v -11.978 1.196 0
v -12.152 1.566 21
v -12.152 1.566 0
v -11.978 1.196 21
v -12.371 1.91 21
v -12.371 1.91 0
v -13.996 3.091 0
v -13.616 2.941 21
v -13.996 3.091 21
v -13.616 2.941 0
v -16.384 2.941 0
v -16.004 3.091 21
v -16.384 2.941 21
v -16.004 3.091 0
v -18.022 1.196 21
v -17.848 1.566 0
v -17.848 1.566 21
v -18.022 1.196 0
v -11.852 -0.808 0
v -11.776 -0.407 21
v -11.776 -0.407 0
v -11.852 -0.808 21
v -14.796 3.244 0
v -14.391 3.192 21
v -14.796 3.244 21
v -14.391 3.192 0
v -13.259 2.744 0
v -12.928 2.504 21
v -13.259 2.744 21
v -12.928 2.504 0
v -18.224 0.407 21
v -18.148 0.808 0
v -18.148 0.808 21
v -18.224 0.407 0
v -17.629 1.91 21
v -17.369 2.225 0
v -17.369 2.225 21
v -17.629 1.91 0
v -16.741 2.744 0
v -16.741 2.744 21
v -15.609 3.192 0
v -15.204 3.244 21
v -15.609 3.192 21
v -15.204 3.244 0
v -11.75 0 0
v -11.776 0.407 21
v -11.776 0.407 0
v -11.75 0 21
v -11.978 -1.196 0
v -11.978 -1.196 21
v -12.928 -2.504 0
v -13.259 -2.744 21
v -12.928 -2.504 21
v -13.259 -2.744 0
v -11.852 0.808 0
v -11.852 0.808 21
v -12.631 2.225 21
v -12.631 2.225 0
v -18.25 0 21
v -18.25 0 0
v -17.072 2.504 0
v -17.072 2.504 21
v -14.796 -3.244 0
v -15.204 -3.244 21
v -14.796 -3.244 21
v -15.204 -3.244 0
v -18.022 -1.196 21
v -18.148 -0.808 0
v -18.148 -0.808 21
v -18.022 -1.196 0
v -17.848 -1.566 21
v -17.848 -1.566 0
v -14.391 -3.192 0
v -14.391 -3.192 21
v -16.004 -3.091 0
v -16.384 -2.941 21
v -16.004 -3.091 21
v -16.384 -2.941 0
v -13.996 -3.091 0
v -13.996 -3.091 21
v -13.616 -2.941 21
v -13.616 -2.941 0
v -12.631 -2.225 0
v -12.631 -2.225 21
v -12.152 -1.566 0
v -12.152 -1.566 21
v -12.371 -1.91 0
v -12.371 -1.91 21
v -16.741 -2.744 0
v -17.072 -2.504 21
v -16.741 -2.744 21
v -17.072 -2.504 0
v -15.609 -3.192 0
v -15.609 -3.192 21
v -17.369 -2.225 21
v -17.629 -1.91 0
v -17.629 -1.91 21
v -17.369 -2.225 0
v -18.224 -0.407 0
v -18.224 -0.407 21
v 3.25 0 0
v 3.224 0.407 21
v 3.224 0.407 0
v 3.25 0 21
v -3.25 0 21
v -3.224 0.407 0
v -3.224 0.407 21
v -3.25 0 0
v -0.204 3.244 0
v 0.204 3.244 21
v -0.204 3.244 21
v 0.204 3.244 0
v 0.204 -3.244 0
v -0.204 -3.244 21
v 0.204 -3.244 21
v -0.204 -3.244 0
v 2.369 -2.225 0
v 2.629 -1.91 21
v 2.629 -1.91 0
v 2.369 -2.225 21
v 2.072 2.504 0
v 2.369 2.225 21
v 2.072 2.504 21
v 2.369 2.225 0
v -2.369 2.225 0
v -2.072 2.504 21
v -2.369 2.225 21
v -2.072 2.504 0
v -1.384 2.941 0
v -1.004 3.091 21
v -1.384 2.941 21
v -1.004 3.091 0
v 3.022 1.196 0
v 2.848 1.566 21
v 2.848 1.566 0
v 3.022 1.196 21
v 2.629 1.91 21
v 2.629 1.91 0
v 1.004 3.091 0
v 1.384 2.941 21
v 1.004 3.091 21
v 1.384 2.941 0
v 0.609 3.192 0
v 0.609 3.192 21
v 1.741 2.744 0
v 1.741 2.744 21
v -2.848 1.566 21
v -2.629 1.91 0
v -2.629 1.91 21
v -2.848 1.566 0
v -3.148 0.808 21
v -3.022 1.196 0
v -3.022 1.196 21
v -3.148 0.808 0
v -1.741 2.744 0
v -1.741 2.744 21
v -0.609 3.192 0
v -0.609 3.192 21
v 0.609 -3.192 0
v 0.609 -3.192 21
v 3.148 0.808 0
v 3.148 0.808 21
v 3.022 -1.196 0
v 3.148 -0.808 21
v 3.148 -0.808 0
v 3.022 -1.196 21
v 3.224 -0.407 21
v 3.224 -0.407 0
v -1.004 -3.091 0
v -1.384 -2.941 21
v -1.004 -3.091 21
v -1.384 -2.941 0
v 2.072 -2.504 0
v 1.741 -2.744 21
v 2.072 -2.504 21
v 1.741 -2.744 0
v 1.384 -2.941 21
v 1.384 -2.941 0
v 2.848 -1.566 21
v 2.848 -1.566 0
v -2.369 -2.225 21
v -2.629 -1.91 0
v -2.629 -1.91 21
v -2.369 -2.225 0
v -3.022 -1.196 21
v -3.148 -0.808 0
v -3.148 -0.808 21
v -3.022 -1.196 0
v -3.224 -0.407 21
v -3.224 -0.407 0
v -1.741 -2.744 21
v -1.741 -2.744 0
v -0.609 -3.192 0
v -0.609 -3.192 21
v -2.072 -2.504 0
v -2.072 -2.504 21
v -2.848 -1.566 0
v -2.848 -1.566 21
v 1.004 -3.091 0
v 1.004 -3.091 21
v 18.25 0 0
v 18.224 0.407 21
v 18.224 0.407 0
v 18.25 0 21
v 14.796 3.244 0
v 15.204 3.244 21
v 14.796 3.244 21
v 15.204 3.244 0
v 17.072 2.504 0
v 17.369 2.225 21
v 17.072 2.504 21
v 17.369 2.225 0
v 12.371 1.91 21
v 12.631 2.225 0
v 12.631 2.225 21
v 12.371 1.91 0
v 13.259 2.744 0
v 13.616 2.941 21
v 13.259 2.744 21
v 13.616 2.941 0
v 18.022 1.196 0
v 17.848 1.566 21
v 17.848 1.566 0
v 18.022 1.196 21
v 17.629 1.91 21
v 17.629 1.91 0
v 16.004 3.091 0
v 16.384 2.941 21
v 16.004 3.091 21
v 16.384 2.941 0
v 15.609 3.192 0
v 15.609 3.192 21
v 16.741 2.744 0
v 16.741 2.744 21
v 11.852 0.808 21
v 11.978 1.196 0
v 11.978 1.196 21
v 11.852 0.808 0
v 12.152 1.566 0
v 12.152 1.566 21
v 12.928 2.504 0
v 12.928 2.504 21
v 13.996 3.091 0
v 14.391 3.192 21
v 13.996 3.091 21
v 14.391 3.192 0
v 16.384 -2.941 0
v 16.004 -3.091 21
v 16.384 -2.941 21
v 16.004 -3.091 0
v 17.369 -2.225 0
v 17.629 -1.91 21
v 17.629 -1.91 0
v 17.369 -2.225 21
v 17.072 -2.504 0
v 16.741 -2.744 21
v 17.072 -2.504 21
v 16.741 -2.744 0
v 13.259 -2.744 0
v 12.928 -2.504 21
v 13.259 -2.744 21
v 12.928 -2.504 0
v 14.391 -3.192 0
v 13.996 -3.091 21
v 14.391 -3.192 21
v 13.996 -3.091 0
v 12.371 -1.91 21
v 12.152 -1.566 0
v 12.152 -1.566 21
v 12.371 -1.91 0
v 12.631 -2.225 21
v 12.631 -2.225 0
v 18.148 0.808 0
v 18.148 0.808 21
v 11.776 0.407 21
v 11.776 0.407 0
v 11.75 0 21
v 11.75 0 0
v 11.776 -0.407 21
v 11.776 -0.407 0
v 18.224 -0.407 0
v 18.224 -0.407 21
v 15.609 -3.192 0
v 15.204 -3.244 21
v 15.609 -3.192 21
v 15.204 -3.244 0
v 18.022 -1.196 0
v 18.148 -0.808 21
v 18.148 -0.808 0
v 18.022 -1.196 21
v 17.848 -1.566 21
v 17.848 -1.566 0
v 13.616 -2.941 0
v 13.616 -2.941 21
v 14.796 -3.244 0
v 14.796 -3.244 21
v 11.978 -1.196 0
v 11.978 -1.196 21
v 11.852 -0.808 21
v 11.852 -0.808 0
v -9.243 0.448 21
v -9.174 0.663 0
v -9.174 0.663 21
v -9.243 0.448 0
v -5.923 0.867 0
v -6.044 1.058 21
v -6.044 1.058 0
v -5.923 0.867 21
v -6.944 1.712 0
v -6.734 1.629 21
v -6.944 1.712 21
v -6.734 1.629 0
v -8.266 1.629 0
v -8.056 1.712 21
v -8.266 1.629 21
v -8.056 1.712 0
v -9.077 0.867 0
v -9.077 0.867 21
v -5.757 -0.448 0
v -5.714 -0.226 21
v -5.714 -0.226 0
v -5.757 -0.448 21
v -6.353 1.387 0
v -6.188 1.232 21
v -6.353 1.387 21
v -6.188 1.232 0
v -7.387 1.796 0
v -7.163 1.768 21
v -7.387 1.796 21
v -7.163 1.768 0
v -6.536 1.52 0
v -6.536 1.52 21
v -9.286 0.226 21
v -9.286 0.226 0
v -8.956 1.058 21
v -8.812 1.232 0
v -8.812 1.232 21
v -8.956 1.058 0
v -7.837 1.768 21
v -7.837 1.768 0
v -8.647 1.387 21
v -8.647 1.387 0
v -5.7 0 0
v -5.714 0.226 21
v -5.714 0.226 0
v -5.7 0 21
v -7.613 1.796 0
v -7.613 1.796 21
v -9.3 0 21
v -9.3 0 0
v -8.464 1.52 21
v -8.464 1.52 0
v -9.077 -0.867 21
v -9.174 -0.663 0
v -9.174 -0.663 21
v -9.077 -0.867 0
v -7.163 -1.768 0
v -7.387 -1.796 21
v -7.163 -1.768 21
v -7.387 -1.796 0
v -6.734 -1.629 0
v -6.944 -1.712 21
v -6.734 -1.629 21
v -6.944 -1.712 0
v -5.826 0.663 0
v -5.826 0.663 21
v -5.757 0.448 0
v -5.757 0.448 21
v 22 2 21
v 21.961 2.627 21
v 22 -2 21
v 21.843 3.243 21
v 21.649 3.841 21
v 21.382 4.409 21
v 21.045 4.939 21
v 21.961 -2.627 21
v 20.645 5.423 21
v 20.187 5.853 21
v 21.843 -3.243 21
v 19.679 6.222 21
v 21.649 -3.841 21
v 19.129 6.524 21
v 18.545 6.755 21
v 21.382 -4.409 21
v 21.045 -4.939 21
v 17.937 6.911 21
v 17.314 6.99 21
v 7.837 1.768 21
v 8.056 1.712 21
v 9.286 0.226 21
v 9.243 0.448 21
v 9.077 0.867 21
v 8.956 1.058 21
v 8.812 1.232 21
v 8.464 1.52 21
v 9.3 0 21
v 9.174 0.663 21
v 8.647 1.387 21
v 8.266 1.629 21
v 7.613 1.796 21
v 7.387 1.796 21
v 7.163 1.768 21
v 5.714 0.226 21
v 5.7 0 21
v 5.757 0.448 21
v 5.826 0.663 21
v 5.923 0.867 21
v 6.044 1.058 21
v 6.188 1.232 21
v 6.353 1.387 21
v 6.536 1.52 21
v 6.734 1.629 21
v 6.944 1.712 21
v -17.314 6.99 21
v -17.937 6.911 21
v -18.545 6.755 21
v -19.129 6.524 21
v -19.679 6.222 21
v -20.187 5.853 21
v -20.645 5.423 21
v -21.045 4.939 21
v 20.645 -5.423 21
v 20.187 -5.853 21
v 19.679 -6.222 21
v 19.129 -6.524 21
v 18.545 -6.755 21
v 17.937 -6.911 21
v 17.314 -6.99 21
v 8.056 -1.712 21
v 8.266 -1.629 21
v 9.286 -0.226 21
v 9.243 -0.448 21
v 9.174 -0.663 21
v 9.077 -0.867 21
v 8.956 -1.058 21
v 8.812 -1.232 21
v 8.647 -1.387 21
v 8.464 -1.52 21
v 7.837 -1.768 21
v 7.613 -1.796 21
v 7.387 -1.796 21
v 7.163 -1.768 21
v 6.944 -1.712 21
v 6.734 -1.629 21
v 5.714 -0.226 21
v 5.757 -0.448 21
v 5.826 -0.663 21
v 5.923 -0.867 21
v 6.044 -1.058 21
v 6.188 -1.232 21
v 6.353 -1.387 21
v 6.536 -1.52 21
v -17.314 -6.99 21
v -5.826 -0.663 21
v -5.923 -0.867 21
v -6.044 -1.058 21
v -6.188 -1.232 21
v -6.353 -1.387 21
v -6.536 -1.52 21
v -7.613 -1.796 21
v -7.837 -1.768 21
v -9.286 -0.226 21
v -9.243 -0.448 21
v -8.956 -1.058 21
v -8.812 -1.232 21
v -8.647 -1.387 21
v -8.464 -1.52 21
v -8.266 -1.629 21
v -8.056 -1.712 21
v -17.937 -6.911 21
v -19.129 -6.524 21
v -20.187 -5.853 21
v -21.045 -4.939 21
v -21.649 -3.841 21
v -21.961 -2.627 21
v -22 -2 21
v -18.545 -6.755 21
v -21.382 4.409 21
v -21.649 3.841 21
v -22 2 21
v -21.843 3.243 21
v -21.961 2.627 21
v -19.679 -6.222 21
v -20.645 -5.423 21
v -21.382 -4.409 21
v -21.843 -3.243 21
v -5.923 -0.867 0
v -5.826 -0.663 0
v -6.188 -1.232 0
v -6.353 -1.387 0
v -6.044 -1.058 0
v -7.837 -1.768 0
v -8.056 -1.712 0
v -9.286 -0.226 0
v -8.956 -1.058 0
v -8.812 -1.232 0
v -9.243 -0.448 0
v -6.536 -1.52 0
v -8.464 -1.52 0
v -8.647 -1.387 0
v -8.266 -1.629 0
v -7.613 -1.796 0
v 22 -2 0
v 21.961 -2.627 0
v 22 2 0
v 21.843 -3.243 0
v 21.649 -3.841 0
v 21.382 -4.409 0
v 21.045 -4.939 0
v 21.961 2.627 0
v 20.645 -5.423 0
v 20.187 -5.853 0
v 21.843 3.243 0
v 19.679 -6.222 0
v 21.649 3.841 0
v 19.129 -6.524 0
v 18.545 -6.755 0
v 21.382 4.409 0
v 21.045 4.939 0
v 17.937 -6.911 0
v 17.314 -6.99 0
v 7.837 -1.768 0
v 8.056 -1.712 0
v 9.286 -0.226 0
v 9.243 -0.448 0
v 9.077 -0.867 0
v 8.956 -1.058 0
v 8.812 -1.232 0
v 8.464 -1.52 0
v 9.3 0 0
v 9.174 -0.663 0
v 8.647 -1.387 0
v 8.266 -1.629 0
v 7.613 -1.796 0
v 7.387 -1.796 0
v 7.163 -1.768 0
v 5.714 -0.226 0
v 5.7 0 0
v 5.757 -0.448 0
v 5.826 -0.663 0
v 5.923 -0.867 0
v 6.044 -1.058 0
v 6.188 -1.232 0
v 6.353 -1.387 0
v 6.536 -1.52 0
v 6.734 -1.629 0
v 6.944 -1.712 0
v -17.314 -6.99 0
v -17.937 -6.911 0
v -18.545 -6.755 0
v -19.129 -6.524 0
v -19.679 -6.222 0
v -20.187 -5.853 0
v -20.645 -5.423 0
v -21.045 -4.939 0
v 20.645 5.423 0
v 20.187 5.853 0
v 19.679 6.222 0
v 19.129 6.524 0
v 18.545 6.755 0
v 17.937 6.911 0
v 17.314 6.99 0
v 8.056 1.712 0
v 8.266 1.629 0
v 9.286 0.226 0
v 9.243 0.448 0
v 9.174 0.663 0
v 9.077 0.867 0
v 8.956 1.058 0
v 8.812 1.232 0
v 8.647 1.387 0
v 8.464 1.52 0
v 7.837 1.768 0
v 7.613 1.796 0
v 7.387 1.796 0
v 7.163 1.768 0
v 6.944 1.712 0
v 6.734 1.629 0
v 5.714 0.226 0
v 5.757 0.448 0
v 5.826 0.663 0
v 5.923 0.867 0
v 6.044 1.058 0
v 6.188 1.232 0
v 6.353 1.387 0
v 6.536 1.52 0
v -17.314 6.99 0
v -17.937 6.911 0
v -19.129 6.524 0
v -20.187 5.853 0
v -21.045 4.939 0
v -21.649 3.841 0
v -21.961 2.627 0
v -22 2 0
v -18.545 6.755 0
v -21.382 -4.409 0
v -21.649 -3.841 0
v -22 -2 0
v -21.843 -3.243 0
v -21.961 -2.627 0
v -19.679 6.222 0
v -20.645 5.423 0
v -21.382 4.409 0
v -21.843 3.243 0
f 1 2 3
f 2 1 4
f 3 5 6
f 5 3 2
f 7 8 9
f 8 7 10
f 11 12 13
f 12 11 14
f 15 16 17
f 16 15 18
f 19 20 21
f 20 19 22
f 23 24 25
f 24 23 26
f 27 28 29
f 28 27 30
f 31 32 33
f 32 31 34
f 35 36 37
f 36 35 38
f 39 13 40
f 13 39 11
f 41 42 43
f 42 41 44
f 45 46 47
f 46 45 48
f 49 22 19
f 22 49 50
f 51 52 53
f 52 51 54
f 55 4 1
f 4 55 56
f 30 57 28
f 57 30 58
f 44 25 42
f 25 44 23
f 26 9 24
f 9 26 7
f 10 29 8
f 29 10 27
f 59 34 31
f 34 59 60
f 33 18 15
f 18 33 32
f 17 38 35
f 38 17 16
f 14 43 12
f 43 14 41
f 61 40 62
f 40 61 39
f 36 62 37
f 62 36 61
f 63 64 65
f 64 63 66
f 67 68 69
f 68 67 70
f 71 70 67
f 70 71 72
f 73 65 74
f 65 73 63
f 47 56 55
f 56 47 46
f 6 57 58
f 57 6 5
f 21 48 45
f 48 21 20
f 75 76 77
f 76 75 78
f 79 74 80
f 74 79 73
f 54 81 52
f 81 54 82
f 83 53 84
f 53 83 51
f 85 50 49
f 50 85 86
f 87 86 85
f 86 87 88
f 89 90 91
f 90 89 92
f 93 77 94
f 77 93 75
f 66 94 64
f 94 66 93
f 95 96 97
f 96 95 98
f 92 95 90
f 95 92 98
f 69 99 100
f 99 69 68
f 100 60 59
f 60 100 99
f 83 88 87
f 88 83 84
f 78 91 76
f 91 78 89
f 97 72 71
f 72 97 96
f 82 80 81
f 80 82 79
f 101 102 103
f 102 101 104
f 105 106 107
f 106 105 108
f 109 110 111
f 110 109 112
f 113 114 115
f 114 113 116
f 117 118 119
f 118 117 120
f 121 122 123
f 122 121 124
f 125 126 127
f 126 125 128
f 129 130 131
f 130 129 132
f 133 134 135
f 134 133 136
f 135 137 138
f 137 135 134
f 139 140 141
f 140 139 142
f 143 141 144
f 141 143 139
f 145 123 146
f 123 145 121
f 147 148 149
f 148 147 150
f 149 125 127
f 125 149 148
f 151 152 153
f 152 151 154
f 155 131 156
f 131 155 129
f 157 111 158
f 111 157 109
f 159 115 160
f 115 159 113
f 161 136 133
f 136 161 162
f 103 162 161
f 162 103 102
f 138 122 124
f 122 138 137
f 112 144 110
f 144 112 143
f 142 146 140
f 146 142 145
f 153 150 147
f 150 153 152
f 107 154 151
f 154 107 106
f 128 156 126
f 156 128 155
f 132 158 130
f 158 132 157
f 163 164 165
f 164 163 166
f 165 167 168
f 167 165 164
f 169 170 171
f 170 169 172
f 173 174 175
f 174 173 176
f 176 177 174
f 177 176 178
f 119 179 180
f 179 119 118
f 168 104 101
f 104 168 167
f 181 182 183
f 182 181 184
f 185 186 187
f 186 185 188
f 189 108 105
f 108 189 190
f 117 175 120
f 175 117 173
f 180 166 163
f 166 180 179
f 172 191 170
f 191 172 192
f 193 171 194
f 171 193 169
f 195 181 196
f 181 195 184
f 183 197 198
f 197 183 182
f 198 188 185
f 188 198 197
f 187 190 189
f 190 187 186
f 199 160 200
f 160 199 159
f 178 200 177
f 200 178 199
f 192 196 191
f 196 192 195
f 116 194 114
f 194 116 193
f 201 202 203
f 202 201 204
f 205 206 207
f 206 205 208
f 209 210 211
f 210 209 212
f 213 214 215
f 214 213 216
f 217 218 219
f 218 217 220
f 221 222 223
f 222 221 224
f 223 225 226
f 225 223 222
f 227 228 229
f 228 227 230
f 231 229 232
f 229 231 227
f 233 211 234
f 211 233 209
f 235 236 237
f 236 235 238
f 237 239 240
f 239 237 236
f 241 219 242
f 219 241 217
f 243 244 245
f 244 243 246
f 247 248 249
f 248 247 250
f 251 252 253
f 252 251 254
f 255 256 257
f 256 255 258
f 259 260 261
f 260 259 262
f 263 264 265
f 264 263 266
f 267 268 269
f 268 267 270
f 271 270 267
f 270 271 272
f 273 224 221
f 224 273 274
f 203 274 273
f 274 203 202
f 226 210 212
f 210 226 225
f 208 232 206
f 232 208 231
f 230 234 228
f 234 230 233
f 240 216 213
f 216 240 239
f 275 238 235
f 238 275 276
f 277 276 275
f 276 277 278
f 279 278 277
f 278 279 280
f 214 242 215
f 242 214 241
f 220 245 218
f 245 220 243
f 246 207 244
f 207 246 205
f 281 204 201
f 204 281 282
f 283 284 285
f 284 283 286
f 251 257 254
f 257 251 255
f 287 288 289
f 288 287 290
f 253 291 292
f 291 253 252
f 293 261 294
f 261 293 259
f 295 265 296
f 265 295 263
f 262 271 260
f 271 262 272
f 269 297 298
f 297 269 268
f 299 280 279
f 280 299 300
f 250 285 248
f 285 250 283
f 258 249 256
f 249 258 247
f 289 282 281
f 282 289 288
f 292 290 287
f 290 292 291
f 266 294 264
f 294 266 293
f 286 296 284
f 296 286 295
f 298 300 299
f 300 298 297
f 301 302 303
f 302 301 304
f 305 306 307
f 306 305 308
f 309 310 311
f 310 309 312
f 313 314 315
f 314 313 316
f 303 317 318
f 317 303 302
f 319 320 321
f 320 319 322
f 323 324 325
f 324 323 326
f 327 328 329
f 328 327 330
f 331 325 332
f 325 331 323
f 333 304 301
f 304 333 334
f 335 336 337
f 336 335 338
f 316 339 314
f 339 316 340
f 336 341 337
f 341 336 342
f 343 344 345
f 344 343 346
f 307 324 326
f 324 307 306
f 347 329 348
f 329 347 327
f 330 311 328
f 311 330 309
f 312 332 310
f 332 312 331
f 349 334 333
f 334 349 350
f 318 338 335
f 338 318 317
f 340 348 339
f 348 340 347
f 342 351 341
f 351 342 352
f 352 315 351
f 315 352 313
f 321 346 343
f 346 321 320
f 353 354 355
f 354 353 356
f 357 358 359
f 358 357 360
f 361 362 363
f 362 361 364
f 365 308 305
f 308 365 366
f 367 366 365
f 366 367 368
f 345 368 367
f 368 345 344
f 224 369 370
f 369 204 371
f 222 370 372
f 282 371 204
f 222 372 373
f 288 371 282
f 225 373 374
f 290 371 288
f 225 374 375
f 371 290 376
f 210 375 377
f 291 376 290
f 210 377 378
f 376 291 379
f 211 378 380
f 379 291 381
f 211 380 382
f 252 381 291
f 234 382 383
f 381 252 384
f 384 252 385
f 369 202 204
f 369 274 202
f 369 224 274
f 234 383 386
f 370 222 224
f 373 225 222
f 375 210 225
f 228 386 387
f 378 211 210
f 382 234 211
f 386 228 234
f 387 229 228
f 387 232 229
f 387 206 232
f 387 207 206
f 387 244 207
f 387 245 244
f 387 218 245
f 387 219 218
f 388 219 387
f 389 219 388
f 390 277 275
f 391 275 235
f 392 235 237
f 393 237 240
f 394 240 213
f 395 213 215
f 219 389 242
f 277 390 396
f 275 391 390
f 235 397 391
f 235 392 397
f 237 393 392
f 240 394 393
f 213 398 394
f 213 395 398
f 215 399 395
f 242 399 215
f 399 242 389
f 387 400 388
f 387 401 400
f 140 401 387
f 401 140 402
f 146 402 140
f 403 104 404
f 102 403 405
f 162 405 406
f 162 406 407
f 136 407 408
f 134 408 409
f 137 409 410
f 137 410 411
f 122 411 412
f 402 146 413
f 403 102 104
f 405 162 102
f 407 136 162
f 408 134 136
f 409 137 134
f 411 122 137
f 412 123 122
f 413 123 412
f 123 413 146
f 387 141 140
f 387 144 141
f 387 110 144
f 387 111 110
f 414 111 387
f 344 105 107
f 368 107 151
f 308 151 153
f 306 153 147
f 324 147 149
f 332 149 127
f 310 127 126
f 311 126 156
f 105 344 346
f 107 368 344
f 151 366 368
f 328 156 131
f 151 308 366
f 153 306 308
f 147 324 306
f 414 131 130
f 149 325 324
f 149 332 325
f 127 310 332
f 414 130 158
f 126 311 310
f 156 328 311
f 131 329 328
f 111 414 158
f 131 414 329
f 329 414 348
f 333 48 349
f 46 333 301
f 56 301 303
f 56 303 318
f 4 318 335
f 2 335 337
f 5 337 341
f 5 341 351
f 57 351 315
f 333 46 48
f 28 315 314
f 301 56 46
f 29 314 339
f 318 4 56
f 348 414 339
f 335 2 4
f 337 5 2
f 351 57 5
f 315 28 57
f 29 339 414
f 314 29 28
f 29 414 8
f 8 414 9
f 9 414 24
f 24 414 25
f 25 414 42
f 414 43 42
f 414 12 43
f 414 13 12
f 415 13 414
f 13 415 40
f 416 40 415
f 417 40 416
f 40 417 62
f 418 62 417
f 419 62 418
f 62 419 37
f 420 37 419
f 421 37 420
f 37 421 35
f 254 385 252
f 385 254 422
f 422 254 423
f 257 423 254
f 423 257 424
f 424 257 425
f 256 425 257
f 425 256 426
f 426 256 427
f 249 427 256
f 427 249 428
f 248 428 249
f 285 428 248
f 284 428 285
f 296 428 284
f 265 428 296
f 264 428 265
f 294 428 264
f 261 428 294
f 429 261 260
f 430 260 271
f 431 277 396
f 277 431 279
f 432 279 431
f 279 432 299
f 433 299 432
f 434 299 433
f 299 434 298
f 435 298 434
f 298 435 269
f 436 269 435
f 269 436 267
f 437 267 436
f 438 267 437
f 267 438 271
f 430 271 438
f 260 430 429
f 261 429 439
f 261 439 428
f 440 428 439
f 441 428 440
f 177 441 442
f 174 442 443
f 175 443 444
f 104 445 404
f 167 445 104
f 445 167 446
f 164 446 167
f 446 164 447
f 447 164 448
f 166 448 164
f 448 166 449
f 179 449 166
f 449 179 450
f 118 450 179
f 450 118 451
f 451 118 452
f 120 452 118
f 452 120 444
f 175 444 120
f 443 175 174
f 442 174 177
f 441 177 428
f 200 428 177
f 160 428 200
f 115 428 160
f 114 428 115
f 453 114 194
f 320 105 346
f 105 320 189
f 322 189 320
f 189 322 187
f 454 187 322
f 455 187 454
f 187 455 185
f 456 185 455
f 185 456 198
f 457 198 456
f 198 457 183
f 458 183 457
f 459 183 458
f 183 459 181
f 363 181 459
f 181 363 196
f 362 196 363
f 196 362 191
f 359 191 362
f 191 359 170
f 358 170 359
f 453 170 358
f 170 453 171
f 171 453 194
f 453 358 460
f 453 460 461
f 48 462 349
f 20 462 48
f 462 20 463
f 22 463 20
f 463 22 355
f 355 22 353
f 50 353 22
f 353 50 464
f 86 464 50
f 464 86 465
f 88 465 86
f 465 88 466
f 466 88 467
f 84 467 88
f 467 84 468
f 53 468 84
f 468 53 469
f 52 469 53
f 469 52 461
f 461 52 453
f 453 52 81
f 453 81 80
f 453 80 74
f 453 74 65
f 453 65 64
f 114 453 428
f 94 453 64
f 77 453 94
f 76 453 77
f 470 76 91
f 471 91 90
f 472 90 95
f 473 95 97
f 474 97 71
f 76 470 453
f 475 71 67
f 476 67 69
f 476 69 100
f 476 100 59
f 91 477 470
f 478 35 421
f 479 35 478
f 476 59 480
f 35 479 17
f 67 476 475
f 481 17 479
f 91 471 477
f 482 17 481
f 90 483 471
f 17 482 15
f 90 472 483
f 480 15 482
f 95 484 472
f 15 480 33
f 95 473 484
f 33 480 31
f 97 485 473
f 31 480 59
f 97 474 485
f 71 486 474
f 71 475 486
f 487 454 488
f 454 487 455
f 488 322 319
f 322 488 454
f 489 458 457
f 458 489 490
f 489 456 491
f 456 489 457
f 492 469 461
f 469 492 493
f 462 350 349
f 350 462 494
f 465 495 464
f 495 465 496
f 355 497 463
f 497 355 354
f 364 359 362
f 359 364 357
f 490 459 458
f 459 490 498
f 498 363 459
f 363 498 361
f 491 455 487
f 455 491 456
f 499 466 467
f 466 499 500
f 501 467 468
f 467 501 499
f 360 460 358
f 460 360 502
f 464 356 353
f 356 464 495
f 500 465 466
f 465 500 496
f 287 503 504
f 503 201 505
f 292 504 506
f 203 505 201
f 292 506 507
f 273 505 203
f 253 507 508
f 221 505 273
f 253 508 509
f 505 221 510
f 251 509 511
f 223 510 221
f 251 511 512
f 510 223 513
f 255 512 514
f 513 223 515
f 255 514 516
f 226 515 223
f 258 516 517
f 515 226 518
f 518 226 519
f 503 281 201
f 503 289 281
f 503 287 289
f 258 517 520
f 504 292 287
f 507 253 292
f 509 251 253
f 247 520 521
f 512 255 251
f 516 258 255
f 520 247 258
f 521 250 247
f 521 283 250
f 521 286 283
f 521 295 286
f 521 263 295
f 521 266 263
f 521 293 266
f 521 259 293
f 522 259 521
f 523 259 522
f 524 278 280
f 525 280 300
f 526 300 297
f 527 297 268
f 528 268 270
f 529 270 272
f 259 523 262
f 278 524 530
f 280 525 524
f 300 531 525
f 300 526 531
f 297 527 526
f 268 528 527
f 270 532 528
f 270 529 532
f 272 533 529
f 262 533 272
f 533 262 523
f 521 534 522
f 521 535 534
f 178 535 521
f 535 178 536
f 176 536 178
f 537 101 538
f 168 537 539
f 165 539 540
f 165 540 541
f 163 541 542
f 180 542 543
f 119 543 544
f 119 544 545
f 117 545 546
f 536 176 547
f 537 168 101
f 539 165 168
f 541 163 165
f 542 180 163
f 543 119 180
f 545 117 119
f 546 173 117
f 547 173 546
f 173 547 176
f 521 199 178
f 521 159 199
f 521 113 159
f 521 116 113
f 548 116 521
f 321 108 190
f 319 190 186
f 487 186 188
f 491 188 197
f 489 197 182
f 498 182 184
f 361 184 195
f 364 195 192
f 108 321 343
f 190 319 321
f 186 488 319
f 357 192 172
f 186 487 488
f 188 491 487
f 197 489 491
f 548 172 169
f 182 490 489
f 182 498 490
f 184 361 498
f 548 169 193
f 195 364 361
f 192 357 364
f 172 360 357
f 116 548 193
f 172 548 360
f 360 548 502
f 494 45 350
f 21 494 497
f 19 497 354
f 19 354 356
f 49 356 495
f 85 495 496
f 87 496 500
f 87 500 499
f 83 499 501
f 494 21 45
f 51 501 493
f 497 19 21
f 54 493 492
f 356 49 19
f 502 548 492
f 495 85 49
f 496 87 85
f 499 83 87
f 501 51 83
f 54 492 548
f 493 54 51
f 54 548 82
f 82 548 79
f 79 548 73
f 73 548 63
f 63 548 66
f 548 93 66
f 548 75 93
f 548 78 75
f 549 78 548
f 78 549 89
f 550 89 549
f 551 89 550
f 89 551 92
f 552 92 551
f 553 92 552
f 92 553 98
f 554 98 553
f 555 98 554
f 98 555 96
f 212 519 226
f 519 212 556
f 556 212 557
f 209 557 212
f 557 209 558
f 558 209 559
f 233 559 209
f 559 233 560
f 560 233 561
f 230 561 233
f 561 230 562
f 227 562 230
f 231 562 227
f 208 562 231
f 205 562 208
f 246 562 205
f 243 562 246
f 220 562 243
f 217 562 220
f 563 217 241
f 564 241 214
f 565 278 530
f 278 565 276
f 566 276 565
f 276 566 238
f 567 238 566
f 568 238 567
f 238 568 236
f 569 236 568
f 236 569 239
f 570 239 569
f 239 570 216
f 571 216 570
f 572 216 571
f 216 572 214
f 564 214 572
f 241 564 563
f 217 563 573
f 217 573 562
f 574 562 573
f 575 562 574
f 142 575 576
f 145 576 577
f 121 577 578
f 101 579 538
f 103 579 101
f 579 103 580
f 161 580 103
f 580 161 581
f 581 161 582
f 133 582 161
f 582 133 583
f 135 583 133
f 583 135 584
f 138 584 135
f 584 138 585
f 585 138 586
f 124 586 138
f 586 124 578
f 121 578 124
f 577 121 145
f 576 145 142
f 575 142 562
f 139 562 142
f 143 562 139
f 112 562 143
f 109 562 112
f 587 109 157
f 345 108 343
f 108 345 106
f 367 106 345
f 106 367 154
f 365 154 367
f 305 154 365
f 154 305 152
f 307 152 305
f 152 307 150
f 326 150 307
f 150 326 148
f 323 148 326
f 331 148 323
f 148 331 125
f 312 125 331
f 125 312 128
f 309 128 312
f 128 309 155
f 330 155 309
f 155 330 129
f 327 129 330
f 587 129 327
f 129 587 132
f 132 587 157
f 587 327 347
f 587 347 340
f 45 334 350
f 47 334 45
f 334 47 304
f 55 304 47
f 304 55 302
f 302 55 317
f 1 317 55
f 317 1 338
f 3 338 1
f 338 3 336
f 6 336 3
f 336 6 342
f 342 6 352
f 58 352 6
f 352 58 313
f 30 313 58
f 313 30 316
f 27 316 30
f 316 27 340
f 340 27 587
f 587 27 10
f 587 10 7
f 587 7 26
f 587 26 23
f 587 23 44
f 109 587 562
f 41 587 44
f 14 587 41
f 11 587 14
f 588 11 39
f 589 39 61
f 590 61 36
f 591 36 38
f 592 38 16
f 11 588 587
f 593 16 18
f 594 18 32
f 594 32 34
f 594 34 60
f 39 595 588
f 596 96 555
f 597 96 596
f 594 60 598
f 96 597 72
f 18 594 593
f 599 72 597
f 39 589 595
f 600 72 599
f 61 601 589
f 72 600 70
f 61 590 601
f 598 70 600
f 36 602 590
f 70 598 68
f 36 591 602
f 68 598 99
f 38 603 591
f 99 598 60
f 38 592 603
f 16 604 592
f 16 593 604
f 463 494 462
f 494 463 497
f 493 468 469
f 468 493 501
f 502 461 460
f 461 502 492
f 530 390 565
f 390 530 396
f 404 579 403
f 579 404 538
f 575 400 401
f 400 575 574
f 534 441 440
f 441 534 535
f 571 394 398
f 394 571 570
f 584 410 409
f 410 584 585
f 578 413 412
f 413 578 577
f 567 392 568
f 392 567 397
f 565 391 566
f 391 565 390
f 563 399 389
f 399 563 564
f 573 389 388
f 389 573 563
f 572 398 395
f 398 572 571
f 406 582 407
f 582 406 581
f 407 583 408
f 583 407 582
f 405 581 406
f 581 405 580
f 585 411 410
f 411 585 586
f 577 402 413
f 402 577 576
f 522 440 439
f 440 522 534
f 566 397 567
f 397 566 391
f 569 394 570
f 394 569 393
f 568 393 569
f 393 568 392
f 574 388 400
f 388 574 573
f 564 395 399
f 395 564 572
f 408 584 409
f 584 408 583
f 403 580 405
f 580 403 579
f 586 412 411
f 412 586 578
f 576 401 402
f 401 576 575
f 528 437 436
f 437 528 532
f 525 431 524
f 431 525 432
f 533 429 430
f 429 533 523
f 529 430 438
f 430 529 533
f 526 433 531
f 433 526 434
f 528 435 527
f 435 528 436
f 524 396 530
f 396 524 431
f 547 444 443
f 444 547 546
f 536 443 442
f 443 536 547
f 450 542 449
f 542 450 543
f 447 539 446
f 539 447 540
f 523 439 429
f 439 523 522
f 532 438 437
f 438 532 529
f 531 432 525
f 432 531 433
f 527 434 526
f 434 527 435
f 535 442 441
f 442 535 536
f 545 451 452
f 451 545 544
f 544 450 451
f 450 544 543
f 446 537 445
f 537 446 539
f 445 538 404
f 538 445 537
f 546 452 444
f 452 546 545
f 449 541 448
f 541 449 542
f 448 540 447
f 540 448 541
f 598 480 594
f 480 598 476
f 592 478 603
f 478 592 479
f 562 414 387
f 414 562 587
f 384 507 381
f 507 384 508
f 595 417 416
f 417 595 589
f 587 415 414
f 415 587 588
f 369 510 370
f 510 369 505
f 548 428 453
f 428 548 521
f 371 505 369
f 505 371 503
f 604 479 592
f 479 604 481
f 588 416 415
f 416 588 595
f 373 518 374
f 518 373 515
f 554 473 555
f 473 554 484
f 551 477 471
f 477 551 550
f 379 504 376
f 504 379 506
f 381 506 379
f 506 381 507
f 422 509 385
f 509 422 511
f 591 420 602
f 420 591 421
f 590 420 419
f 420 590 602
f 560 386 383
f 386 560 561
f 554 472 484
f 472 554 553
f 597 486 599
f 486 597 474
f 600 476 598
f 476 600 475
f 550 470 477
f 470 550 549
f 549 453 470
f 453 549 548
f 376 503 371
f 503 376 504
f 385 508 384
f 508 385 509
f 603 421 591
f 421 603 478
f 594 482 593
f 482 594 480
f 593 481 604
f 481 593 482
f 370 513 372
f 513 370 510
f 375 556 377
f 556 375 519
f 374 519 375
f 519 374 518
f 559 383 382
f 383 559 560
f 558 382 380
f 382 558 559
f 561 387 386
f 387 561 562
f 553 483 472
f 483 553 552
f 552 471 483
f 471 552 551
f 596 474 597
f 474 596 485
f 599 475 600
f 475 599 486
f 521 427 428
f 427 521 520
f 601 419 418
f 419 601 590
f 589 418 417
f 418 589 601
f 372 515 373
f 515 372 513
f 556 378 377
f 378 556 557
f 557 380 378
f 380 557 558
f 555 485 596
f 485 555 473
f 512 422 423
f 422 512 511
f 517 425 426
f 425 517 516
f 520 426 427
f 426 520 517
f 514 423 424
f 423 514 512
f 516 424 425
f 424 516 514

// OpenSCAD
$fn = 50;


difference() {
	union() {
		hull() {
			translate(v = [-17.0000000000, 2.0000000000, 0]) {
				cylinder(h = 21, r = 5);
			}
			translate(v = [17.0000000000, 2.0000000000, 0]) {
				cylinder(h = 21, r = 5);
			}
			translate(v = [-17.0000000000, -2.0000000000, 0]) {
				cylinder(h = 21, r = 5);
			}
			translate(v = [17.0000000000, -2.0000000000, 0]) {
				cylinder(h = 21, r = 5);
			}
		}
	}
	union() {
		translate(v = [-15.0000000000, 0.0000000000, -100.0000000000]) {
			cylinder(h = 200, r = 3.2500000000);
		}
		translate(v = [0.0000000000, 0.0000000000, -100.0000000000]) {
			cylinder(h = 200, r = 3.2500000000);
		}
		translate(v = [15.0000000000, 0.0000000000, -100.0000000000]) {
			cylinder(h = 200, r = 3.2500000000);
		}
		translate(v = [-15.0000000000, 0.0000000000, 0]) {
			cylinder(h = 21, r = 1.8000000000);
		}
		translate(v = [-7.5000000000, 0.0000000000, 0]) {
			cylinder(h = 21, r = 1.8000000000);
		}
		cylinder(h = 21, r = 1.8000000000);
		translate(v = [7.5000000000, 0.0000000000, 0]) {
			cylinder(h = 21, r = 1.8000000000);
		}
		translate(v = [15.0000000000, 0.0000000000, 0]) {
			cylinder(h = 21, r = 1.8000000000);
		}
		translate(v = [-15.0000000000, 0.0000000000, 0]) {
			cylinder(h = 21, r = 1.8000000000);
		}
		translate(v = [-7.5000000000, 0.0000000000, 0]) {
			cylinder(h = 21, r = 1.8000000000);
		}
		cylinder(h = 21, r = 1.8000000000);
		translate(v = [7.5000000000, 0.0000000000, 0]) {
			cylinder(h = 21, r = 1.8000000000);
		}
		translate(v = [15.0000000000, 0.0000000000, 0]) {
			cylinder(h = 21, r = 1.8000000000);
		}
		translate(v = [-15.0000000000, 0.0000000000, 0]) {
			cylinder(h = 21, r = 1.8000000000);
		}
		translate(v = [-7.5000000000, 0.0000000000, 0]) {
			cylinder(h = 21, r = 1.8000000000);
		}
		cylinder(h = 21, r = 1.8000000000);
		translate(v = [7.5000000000, 0.0000000000, 0]) {
			cylinder(h = 21, r = 1.8000000000);
		}
		translate(v = [15.0000000000, 0.0000000000, 0]) {
			cylinder(h = 21, r = 1.8000000000);
		}
	}
}
